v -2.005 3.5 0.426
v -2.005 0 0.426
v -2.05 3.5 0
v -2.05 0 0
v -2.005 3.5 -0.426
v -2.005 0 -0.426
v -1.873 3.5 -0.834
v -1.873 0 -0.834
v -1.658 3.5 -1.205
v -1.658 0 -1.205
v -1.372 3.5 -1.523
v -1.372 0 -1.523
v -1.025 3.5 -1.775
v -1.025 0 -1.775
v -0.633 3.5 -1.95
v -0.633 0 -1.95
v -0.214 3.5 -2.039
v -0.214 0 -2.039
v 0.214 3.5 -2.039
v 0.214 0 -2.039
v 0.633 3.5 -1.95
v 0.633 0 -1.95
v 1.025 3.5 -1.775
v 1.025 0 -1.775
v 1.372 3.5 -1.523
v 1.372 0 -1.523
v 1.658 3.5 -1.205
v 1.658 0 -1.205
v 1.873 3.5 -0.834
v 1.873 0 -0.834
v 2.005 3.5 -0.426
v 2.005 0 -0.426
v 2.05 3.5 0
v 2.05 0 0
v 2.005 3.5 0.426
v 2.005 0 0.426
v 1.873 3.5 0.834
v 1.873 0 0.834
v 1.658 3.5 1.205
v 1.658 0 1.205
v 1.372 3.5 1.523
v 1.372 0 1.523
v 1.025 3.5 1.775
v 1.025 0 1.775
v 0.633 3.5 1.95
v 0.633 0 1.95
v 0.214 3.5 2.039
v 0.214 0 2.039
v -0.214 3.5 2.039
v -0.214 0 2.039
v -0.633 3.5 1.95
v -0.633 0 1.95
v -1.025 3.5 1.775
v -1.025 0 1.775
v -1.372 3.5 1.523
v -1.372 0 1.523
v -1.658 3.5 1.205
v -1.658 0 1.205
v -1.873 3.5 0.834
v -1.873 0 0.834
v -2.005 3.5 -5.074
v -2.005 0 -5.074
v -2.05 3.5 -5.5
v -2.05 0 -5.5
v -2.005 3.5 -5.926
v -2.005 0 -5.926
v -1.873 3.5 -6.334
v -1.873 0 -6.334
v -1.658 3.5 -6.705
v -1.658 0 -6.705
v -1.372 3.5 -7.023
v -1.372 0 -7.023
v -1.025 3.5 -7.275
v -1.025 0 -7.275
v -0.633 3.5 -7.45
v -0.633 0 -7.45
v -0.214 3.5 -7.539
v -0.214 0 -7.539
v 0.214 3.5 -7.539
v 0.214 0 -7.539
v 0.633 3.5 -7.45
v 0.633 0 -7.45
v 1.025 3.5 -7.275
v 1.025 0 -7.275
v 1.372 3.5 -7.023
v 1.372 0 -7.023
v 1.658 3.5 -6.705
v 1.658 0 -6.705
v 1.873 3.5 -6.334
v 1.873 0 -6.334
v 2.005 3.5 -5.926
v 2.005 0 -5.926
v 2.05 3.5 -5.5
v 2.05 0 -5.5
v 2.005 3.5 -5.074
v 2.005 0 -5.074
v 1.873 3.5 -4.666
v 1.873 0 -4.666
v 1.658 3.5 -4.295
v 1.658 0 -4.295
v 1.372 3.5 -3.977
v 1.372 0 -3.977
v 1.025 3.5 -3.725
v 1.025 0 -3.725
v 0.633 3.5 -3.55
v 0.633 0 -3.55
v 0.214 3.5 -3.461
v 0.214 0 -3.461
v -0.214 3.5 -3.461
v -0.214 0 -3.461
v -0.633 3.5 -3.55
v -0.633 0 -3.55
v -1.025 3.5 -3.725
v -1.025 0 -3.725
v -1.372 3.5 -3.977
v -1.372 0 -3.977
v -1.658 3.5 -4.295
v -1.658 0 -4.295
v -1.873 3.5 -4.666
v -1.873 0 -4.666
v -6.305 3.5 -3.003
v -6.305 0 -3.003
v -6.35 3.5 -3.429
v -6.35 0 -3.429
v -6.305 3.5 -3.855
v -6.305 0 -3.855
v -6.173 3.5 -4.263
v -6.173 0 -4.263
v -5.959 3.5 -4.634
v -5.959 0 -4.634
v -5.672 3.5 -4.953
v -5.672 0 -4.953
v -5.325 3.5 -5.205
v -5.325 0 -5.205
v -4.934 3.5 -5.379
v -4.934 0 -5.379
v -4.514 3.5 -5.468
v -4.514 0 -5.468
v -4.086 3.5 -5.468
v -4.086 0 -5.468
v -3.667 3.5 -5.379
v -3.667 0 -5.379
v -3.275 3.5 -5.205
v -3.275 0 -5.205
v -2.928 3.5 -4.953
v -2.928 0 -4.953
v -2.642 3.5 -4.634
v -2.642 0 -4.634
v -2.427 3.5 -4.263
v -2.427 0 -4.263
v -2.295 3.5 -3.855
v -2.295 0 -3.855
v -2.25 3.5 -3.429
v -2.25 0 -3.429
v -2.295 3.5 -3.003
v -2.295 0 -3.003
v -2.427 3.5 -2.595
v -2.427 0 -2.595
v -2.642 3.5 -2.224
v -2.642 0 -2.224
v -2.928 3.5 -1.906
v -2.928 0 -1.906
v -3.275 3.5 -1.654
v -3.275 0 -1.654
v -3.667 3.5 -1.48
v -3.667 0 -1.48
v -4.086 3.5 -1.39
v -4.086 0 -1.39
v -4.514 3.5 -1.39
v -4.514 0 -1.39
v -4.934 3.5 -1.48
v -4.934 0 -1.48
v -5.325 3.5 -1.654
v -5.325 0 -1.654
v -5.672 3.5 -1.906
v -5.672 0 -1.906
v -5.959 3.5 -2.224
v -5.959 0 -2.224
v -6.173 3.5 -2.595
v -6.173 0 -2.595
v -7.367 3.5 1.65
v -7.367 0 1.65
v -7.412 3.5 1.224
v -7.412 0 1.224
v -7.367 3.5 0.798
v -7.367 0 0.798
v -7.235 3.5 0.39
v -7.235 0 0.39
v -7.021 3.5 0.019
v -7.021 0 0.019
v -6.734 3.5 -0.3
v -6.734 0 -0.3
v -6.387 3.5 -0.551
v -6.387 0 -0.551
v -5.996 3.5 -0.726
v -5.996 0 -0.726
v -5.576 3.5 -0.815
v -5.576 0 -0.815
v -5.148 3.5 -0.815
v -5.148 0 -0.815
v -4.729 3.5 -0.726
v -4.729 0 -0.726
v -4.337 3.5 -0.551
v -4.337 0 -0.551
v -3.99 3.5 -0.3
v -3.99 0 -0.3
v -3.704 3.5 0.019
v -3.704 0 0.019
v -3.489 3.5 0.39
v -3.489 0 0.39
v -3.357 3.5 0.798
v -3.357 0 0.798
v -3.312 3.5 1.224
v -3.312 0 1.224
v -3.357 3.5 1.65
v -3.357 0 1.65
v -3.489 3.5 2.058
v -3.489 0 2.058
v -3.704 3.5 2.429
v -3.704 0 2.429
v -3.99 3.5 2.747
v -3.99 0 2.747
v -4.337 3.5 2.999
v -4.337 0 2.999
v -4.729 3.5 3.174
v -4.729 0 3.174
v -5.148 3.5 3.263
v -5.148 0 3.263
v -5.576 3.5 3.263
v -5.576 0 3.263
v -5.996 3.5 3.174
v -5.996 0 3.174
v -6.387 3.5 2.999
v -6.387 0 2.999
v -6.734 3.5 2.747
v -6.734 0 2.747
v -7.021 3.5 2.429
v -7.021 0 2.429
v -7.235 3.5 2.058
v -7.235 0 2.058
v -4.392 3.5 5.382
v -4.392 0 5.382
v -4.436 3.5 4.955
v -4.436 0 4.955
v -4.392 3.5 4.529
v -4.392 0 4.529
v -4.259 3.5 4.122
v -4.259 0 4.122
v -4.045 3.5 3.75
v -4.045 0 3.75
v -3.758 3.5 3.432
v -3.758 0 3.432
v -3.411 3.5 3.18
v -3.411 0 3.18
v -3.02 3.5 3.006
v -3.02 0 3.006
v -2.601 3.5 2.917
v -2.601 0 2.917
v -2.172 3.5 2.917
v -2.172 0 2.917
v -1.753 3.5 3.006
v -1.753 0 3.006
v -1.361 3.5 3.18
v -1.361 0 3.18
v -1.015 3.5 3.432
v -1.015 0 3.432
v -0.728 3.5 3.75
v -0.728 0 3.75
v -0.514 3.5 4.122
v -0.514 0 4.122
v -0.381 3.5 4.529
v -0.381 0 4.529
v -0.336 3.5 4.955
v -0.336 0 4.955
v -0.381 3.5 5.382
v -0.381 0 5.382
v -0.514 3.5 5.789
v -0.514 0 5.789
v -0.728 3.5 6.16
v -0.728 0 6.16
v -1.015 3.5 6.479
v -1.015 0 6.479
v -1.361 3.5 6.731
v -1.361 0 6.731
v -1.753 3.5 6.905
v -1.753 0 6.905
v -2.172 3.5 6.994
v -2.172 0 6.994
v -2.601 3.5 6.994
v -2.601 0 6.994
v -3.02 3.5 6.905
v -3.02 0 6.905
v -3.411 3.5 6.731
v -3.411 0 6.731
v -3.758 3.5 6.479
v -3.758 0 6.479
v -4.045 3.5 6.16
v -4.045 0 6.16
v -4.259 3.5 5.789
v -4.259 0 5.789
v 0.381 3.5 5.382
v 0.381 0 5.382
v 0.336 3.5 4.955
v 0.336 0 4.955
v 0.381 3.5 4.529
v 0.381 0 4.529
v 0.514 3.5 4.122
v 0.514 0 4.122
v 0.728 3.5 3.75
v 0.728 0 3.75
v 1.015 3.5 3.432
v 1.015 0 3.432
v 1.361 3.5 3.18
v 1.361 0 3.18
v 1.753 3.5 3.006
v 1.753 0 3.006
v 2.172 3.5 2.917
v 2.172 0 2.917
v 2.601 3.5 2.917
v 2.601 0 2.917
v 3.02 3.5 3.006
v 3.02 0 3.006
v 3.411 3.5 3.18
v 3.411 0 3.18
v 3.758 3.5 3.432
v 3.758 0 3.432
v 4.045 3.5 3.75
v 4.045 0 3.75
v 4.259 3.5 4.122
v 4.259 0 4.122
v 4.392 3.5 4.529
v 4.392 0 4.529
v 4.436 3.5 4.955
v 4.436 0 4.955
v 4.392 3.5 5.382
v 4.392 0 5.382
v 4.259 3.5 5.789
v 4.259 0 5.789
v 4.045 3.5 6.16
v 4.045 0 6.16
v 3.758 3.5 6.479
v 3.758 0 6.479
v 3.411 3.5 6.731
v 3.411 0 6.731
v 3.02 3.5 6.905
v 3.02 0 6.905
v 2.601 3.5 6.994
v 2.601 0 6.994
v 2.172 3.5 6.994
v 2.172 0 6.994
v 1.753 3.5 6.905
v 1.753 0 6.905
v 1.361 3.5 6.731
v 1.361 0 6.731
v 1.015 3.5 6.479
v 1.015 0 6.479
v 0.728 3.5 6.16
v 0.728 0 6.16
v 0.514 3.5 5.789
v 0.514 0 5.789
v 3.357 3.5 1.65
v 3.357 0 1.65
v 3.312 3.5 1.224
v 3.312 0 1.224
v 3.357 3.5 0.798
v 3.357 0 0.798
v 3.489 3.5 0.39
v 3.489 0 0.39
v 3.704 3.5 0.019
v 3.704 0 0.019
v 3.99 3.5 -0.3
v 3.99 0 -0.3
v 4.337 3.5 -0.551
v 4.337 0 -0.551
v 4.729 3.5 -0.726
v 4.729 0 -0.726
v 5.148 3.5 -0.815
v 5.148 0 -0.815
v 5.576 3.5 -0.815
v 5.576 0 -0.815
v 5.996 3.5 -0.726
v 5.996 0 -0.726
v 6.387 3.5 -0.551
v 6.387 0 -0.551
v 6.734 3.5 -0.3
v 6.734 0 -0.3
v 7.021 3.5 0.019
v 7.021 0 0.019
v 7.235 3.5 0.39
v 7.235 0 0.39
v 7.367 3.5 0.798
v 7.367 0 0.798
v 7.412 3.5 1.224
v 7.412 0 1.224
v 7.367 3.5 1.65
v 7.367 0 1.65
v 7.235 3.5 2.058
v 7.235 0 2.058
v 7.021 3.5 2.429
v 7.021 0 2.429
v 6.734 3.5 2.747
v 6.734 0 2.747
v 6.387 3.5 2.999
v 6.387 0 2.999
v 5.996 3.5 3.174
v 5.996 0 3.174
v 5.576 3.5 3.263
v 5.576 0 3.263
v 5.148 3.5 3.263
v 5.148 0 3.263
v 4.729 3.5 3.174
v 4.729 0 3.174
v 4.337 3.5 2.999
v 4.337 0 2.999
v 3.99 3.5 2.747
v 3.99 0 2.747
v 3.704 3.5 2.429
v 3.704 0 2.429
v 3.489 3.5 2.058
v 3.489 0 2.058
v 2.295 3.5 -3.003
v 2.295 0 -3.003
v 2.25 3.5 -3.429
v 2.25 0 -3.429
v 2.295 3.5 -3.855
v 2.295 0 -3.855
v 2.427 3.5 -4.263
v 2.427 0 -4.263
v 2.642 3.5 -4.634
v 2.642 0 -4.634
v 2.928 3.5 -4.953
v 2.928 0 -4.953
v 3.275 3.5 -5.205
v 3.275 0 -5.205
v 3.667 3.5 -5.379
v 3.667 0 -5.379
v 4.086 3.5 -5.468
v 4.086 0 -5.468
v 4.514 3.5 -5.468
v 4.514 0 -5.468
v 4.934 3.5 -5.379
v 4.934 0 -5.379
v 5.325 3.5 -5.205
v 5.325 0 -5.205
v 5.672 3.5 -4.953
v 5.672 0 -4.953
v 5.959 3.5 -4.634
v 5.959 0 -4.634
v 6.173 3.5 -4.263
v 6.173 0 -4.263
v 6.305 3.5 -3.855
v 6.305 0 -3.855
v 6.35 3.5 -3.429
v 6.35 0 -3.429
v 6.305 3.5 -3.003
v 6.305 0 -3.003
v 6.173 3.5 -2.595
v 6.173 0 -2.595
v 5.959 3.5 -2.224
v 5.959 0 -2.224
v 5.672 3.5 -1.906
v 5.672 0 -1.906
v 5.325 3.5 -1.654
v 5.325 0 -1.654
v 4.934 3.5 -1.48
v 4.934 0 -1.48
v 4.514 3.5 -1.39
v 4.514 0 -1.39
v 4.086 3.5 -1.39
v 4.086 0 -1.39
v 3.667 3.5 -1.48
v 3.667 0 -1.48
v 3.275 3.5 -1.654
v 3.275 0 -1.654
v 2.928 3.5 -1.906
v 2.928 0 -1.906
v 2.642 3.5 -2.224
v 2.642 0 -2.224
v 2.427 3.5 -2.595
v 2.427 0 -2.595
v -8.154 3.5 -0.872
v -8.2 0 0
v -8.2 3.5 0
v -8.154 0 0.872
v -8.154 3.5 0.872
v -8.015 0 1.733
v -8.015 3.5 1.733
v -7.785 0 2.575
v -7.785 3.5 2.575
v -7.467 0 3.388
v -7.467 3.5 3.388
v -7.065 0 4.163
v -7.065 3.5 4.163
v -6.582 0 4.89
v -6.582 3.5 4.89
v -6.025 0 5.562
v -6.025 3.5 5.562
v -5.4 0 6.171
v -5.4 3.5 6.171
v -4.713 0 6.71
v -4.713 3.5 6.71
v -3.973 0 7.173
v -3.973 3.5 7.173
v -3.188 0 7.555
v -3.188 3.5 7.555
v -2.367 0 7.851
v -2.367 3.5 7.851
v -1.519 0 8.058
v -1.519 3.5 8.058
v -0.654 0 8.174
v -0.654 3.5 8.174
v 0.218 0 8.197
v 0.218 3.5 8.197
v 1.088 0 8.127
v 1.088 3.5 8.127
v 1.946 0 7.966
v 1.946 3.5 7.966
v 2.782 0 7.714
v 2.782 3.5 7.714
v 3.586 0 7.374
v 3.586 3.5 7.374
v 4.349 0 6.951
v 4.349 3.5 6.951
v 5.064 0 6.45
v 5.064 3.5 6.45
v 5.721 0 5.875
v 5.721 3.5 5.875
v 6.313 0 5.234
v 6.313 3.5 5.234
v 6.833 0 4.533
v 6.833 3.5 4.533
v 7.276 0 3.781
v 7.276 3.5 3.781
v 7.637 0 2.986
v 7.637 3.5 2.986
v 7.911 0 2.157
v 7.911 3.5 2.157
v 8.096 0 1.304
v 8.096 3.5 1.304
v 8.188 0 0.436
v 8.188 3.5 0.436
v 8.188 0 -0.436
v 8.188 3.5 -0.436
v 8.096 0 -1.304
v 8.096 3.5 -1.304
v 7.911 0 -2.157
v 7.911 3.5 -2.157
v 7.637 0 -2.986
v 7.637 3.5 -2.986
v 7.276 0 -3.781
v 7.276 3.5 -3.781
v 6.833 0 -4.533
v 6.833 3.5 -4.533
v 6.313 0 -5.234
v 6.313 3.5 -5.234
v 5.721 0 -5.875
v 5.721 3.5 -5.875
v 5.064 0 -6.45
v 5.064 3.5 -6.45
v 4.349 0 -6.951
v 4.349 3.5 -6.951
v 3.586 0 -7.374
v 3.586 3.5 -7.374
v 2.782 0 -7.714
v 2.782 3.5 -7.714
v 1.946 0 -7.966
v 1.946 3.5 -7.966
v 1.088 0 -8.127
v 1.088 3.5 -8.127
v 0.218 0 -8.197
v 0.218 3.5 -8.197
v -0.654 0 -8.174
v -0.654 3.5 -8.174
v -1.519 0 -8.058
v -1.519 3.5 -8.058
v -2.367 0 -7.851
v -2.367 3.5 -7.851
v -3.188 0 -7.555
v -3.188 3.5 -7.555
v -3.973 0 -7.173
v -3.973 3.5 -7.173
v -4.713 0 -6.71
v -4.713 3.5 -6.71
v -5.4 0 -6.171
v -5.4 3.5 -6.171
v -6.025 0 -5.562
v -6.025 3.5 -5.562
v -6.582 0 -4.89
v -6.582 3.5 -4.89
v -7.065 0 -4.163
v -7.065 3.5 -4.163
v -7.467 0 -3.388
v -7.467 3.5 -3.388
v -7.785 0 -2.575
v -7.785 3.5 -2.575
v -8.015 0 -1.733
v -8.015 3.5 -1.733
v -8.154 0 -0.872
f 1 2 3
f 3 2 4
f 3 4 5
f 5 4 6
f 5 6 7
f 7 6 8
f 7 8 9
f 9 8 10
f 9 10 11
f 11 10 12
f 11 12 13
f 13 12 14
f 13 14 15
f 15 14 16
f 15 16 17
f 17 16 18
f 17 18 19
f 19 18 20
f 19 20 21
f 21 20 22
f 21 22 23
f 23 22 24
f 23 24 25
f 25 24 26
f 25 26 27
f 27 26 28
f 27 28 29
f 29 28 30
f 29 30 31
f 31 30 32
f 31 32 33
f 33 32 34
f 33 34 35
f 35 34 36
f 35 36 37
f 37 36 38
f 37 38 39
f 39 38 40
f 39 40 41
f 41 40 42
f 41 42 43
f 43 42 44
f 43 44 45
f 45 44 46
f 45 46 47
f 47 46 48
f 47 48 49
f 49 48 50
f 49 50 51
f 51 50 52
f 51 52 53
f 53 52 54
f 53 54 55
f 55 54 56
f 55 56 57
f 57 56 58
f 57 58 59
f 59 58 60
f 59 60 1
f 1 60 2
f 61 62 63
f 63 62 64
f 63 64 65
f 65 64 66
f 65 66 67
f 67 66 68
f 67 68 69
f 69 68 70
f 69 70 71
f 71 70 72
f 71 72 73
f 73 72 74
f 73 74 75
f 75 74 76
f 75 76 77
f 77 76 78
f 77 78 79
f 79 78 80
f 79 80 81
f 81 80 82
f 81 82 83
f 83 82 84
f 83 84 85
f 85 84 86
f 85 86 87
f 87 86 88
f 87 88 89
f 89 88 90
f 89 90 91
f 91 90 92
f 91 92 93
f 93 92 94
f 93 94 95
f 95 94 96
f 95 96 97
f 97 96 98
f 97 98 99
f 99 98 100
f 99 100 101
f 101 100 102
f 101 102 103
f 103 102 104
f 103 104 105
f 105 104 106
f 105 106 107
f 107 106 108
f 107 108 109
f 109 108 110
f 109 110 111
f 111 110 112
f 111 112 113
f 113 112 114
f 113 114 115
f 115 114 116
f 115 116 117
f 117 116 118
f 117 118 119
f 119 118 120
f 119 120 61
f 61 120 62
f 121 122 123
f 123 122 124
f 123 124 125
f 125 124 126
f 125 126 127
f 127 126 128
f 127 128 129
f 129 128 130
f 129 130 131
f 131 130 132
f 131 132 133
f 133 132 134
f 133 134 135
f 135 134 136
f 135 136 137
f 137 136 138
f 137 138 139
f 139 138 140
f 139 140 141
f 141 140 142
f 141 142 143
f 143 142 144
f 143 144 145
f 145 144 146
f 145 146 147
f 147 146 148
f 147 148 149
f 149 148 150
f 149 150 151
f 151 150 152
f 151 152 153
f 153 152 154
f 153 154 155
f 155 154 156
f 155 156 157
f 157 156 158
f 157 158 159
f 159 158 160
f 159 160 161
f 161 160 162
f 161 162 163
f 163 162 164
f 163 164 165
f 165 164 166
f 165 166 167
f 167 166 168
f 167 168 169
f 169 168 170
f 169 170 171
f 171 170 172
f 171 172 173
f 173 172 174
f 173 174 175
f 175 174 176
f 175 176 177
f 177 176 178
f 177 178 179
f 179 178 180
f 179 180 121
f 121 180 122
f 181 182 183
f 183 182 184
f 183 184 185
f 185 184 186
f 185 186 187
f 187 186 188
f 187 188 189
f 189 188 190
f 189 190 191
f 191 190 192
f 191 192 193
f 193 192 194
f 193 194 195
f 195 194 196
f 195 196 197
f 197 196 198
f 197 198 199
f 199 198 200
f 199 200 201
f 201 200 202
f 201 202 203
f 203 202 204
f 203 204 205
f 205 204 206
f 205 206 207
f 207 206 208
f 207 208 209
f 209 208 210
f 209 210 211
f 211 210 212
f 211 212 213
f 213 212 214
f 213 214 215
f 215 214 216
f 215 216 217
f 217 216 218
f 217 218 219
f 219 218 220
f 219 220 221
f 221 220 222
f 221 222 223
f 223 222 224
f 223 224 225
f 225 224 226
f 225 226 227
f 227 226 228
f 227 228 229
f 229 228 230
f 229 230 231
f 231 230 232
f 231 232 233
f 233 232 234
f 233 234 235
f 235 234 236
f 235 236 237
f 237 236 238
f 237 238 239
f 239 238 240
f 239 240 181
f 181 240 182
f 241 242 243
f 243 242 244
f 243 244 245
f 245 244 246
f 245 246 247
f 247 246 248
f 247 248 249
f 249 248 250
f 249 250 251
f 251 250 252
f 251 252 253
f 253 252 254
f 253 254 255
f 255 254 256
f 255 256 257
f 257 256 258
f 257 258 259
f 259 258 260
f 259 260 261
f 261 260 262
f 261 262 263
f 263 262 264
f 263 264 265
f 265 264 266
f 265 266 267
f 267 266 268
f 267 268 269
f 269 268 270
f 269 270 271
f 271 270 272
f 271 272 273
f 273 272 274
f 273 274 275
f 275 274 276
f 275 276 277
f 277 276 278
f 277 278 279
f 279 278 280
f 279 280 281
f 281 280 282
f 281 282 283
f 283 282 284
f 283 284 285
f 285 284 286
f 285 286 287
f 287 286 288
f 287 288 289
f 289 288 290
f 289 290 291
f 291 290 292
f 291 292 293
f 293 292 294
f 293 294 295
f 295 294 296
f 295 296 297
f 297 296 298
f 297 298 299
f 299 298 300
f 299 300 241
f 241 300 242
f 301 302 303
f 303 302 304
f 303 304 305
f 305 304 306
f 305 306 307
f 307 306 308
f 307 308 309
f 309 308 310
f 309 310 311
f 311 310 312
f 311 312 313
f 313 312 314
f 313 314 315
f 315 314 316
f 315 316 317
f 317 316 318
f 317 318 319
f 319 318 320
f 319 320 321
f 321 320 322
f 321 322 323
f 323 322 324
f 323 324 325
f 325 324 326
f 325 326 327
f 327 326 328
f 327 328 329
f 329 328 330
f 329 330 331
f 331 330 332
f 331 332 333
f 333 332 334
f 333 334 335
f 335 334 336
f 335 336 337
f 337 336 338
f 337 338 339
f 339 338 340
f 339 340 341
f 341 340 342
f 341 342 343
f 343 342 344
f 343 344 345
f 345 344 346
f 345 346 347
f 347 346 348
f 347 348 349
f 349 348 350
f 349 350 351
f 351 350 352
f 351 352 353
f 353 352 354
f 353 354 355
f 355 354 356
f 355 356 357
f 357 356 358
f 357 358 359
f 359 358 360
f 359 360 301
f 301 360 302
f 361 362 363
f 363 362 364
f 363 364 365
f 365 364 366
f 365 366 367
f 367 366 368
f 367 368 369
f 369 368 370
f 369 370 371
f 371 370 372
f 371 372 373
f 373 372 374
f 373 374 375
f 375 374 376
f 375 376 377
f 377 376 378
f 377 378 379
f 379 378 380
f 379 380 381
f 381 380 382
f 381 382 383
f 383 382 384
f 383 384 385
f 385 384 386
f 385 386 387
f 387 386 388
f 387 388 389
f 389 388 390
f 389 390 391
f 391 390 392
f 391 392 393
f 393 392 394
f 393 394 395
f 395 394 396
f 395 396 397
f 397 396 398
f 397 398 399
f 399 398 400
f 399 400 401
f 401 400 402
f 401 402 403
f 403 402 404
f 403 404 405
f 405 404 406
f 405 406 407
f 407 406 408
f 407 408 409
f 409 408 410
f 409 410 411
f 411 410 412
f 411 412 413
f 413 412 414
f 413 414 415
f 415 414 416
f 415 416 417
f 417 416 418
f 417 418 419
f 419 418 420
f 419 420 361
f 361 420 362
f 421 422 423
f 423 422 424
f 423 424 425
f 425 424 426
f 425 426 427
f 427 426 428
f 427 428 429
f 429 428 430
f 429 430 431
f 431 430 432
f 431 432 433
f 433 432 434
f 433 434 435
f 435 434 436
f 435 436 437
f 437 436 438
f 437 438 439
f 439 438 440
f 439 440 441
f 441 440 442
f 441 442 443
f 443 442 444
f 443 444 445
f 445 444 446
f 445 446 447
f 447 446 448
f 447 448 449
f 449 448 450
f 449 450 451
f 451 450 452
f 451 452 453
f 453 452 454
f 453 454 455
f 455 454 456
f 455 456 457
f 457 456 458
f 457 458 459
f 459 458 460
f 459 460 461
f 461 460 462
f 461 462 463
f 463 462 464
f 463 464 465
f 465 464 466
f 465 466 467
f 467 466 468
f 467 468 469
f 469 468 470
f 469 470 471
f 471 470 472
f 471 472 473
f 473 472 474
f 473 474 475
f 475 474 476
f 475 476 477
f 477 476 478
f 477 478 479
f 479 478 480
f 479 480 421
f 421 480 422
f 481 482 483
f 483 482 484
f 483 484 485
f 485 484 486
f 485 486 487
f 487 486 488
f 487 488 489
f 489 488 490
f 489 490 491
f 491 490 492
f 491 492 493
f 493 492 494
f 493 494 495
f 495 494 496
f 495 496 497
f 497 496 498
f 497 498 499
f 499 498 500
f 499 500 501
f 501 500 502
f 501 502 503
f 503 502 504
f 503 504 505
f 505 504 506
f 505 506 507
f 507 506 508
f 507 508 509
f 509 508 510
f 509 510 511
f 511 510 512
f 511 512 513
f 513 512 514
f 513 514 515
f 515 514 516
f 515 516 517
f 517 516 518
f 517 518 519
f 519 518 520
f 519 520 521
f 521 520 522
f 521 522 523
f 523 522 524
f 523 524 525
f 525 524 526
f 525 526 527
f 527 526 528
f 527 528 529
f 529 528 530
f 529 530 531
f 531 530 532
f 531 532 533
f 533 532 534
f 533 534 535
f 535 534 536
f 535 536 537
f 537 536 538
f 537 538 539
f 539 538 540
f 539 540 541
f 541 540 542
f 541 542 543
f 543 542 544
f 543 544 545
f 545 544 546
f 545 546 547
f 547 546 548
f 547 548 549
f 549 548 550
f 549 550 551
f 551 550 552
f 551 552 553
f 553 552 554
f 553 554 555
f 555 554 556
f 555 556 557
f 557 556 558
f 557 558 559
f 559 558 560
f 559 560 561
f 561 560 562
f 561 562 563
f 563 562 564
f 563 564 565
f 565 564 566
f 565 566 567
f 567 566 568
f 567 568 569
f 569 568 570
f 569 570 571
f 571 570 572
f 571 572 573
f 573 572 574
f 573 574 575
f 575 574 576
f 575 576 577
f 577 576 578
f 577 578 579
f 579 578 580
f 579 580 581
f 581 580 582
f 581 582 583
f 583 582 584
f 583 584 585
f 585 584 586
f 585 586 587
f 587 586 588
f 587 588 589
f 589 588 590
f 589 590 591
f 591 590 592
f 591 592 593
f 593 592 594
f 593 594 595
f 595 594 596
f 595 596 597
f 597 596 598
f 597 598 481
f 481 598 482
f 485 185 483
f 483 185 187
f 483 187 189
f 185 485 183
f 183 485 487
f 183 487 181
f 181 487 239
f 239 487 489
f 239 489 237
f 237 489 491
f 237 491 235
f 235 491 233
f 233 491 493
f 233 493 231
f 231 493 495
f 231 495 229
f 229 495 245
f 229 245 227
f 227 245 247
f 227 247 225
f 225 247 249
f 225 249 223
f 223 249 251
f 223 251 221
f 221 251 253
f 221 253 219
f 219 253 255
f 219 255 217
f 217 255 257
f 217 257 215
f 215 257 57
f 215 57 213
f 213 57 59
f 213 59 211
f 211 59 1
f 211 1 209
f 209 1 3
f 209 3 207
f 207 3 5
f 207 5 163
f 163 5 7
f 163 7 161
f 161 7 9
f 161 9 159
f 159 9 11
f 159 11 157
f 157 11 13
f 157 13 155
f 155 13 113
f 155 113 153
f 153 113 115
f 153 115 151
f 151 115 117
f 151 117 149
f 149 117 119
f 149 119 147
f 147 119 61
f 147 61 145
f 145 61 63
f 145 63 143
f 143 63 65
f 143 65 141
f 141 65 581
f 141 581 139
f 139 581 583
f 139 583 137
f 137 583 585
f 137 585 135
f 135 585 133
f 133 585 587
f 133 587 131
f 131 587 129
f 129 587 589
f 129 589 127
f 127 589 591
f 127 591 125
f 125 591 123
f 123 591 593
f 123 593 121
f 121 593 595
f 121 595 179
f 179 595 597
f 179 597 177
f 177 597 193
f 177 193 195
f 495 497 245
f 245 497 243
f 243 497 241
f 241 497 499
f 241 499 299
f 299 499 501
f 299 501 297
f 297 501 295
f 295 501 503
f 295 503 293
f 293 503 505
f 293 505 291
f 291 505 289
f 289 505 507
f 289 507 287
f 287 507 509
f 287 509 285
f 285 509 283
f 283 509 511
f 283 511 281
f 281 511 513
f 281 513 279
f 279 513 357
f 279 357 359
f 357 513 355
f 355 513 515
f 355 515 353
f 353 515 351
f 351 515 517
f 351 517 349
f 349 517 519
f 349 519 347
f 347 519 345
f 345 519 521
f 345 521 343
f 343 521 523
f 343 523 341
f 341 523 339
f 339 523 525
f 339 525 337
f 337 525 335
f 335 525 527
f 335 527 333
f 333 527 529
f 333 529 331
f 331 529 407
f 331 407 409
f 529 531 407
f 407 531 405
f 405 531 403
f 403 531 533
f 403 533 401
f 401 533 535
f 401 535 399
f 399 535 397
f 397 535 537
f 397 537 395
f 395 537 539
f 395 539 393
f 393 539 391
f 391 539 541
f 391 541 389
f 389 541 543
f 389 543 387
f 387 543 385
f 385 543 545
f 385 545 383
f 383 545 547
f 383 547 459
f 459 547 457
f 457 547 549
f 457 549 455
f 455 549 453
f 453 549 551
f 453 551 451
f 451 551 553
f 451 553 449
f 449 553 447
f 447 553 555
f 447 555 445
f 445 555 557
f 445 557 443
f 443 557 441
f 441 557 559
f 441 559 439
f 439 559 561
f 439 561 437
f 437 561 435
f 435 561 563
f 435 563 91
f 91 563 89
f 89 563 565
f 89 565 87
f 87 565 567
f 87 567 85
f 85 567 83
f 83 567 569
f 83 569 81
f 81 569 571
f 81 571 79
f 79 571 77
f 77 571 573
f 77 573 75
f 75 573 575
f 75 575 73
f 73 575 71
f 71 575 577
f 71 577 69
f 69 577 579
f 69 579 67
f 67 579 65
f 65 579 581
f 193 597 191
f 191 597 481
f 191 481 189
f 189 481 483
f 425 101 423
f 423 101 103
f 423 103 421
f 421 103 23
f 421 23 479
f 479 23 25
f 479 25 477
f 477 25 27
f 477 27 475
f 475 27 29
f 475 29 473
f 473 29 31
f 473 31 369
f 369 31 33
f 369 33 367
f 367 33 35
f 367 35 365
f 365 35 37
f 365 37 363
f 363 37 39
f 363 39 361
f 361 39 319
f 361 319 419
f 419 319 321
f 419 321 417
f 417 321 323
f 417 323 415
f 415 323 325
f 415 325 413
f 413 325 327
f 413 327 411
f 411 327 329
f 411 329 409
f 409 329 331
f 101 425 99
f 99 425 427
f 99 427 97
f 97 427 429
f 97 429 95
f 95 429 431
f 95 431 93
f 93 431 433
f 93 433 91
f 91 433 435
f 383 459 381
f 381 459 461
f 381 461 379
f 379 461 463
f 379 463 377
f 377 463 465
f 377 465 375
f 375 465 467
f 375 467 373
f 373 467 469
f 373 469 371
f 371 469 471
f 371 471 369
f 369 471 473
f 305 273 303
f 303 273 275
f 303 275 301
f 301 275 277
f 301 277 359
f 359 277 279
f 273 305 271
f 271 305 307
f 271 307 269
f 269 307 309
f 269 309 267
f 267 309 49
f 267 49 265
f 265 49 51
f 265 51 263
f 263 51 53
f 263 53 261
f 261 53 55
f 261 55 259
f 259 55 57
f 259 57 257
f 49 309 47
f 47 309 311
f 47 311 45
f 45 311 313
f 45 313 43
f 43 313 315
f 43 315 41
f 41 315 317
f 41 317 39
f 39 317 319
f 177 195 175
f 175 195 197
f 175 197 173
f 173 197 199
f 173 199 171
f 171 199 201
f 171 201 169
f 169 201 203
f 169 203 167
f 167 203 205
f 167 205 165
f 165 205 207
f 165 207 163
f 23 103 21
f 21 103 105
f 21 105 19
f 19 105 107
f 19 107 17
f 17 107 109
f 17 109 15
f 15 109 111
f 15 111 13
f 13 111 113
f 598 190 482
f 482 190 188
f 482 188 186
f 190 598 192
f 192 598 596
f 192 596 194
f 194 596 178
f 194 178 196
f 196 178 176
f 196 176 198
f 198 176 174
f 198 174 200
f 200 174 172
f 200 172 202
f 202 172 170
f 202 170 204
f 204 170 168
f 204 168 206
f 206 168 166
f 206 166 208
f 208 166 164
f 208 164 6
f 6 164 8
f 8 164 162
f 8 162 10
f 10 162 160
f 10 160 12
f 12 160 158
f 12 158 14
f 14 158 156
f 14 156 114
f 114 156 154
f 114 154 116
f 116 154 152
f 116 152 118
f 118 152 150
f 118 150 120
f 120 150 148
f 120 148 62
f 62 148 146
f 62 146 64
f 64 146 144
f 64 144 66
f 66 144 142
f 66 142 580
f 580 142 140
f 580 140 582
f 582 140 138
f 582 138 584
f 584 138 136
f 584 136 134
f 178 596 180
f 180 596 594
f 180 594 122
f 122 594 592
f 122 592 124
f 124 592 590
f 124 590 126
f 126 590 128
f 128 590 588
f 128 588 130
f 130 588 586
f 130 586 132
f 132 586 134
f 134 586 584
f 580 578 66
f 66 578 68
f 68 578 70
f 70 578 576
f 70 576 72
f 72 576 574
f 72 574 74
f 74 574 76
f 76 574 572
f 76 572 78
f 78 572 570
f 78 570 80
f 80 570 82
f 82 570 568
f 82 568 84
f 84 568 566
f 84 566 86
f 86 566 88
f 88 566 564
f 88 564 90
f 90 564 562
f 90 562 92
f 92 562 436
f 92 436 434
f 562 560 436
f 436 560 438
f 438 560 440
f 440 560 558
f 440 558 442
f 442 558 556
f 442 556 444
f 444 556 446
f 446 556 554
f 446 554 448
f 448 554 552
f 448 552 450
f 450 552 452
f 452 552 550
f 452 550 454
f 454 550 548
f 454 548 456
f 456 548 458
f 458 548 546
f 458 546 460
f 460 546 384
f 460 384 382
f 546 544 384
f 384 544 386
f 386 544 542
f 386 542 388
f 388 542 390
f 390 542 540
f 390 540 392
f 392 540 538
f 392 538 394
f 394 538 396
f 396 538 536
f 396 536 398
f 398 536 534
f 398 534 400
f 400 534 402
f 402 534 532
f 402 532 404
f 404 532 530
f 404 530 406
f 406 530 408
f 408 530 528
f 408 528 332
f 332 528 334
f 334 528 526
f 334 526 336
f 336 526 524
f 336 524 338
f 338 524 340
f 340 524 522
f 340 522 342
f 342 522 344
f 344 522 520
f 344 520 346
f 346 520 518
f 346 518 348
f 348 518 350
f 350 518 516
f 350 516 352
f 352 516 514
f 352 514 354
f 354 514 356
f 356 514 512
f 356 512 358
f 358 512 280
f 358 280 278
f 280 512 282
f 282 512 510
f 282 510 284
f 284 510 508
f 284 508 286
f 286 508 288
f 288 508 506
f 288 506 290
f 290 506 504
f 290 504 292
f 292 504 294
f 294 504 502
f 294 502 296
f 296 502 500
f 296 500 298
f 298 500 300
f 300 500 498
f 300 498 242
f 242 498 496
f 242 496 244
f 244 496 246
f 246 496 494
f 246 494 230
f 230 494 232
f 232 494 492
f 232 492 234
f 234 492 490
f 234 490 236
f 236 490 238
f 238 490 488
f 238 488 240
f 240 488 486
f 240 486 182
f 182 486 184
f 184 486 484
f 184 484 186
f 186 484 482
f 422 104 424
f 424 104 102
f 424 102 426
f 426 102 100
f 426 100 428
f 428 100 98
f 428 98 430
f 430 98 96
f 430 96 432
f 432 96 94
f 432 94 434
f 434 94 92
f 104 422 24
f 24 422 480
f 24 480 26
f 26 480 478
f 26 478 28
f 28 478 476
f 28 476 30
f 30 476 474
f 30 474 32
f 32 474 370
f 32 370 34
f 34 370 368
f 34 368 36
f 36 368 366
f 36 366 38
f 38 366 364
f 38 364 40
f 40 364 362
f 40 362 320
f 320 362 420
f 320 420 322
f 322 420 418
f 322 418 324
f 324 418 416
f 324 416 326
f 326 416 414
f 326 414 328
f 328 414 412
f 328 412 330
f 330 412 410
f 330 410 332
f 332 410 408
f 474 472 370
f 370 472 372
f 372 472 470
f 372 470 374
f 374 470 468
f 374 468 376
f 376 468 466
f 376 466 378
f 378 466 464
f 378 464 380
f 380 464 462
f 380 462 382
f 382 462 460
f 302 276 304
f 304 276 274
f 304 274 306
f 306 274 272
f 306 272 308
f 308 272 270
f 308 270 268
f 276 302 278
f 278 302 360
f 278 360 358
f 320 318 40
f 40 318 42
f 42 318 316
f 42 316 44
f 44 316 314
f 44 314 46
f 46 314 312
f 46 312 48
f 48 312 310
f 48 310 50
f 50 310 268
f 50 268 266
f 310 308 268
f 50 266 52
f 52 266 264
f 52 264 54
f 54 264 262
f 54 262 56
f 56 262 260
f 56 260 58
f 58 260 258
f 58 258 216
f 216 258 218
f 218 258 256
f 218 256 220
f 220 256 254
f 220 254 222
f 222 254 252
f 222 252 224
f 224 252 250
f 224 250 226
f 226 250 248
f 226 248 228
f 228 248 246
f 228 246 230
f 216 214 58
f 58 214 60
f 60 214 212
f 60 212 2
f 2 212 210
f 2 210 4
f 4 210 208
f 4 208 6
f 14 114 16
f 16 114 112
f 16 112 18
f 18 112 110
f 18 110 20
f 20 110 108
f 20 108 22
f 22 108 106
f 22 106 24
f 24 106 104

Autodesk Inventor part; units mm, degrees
ref_plane "YZ Plane" through (0, 0, 0) normal (1, 0, 0) x (0, 1, 0)
ref_plane "XZ Plane" through (0, 0, 0) normal (0, 1, 0) x (-1, 0, 0)
ref_plane "XY Plane" through (0, 0, 0) normal (0, 0, 1) x (1, 0, 0)
sketch "스케치1" plane through (0, 0, 0) normal (0, 1, 0) x (-1, 0, 0)
  circle A0 centre (0, 0) radius 2.05
  line L0 (0, 0) -> (0, -15.8678) construction
  circle A1 centre (0, -5.5) radius 2.05
  line L1 (0, 0) -> (12.4059, -9.8934) construction
  circle A2 centre (4.3001, -3.4292) radius 2.05
  line L2 (0, 0) -> (15.4699, 3.5309) construction
  circle A3 centre (5.3621, 1.2239) radius 2.05
  line L3 (0, 0) -> (6.8848, 14.2964) construction
  circle A4 centre (2.3864, 4.9553) radius 2.05
  line L4 (0, 0) -> (-6.8848, 14.2964) construction
  circle A5 centre (-2.3864, 4.9553) radius 2.05
  line L5 (0, 0) -> (-15.4699, 3.5309) construction
  circle A6 centre (-5.3621, 1.2239) radius 2.05
  line L6 (0, 0) -> (-12.4059, -9.8934) construction
  circle A7 centre (-4.3001, -3.4292) radius 2.05
  circle A8 centre (0, 0) radius 8.2
  dimension "d0" = 4.1
  dimension "d2" = 4.1
  dimension "d3" = 5.5
  dimension "d6" = 360
  dimension "d8" = 16.4
extrude "돌출1" add sketch "스케치1" along normal blind 3.5
properties part number "braided_terminal_end_4.1mm_8ea"
